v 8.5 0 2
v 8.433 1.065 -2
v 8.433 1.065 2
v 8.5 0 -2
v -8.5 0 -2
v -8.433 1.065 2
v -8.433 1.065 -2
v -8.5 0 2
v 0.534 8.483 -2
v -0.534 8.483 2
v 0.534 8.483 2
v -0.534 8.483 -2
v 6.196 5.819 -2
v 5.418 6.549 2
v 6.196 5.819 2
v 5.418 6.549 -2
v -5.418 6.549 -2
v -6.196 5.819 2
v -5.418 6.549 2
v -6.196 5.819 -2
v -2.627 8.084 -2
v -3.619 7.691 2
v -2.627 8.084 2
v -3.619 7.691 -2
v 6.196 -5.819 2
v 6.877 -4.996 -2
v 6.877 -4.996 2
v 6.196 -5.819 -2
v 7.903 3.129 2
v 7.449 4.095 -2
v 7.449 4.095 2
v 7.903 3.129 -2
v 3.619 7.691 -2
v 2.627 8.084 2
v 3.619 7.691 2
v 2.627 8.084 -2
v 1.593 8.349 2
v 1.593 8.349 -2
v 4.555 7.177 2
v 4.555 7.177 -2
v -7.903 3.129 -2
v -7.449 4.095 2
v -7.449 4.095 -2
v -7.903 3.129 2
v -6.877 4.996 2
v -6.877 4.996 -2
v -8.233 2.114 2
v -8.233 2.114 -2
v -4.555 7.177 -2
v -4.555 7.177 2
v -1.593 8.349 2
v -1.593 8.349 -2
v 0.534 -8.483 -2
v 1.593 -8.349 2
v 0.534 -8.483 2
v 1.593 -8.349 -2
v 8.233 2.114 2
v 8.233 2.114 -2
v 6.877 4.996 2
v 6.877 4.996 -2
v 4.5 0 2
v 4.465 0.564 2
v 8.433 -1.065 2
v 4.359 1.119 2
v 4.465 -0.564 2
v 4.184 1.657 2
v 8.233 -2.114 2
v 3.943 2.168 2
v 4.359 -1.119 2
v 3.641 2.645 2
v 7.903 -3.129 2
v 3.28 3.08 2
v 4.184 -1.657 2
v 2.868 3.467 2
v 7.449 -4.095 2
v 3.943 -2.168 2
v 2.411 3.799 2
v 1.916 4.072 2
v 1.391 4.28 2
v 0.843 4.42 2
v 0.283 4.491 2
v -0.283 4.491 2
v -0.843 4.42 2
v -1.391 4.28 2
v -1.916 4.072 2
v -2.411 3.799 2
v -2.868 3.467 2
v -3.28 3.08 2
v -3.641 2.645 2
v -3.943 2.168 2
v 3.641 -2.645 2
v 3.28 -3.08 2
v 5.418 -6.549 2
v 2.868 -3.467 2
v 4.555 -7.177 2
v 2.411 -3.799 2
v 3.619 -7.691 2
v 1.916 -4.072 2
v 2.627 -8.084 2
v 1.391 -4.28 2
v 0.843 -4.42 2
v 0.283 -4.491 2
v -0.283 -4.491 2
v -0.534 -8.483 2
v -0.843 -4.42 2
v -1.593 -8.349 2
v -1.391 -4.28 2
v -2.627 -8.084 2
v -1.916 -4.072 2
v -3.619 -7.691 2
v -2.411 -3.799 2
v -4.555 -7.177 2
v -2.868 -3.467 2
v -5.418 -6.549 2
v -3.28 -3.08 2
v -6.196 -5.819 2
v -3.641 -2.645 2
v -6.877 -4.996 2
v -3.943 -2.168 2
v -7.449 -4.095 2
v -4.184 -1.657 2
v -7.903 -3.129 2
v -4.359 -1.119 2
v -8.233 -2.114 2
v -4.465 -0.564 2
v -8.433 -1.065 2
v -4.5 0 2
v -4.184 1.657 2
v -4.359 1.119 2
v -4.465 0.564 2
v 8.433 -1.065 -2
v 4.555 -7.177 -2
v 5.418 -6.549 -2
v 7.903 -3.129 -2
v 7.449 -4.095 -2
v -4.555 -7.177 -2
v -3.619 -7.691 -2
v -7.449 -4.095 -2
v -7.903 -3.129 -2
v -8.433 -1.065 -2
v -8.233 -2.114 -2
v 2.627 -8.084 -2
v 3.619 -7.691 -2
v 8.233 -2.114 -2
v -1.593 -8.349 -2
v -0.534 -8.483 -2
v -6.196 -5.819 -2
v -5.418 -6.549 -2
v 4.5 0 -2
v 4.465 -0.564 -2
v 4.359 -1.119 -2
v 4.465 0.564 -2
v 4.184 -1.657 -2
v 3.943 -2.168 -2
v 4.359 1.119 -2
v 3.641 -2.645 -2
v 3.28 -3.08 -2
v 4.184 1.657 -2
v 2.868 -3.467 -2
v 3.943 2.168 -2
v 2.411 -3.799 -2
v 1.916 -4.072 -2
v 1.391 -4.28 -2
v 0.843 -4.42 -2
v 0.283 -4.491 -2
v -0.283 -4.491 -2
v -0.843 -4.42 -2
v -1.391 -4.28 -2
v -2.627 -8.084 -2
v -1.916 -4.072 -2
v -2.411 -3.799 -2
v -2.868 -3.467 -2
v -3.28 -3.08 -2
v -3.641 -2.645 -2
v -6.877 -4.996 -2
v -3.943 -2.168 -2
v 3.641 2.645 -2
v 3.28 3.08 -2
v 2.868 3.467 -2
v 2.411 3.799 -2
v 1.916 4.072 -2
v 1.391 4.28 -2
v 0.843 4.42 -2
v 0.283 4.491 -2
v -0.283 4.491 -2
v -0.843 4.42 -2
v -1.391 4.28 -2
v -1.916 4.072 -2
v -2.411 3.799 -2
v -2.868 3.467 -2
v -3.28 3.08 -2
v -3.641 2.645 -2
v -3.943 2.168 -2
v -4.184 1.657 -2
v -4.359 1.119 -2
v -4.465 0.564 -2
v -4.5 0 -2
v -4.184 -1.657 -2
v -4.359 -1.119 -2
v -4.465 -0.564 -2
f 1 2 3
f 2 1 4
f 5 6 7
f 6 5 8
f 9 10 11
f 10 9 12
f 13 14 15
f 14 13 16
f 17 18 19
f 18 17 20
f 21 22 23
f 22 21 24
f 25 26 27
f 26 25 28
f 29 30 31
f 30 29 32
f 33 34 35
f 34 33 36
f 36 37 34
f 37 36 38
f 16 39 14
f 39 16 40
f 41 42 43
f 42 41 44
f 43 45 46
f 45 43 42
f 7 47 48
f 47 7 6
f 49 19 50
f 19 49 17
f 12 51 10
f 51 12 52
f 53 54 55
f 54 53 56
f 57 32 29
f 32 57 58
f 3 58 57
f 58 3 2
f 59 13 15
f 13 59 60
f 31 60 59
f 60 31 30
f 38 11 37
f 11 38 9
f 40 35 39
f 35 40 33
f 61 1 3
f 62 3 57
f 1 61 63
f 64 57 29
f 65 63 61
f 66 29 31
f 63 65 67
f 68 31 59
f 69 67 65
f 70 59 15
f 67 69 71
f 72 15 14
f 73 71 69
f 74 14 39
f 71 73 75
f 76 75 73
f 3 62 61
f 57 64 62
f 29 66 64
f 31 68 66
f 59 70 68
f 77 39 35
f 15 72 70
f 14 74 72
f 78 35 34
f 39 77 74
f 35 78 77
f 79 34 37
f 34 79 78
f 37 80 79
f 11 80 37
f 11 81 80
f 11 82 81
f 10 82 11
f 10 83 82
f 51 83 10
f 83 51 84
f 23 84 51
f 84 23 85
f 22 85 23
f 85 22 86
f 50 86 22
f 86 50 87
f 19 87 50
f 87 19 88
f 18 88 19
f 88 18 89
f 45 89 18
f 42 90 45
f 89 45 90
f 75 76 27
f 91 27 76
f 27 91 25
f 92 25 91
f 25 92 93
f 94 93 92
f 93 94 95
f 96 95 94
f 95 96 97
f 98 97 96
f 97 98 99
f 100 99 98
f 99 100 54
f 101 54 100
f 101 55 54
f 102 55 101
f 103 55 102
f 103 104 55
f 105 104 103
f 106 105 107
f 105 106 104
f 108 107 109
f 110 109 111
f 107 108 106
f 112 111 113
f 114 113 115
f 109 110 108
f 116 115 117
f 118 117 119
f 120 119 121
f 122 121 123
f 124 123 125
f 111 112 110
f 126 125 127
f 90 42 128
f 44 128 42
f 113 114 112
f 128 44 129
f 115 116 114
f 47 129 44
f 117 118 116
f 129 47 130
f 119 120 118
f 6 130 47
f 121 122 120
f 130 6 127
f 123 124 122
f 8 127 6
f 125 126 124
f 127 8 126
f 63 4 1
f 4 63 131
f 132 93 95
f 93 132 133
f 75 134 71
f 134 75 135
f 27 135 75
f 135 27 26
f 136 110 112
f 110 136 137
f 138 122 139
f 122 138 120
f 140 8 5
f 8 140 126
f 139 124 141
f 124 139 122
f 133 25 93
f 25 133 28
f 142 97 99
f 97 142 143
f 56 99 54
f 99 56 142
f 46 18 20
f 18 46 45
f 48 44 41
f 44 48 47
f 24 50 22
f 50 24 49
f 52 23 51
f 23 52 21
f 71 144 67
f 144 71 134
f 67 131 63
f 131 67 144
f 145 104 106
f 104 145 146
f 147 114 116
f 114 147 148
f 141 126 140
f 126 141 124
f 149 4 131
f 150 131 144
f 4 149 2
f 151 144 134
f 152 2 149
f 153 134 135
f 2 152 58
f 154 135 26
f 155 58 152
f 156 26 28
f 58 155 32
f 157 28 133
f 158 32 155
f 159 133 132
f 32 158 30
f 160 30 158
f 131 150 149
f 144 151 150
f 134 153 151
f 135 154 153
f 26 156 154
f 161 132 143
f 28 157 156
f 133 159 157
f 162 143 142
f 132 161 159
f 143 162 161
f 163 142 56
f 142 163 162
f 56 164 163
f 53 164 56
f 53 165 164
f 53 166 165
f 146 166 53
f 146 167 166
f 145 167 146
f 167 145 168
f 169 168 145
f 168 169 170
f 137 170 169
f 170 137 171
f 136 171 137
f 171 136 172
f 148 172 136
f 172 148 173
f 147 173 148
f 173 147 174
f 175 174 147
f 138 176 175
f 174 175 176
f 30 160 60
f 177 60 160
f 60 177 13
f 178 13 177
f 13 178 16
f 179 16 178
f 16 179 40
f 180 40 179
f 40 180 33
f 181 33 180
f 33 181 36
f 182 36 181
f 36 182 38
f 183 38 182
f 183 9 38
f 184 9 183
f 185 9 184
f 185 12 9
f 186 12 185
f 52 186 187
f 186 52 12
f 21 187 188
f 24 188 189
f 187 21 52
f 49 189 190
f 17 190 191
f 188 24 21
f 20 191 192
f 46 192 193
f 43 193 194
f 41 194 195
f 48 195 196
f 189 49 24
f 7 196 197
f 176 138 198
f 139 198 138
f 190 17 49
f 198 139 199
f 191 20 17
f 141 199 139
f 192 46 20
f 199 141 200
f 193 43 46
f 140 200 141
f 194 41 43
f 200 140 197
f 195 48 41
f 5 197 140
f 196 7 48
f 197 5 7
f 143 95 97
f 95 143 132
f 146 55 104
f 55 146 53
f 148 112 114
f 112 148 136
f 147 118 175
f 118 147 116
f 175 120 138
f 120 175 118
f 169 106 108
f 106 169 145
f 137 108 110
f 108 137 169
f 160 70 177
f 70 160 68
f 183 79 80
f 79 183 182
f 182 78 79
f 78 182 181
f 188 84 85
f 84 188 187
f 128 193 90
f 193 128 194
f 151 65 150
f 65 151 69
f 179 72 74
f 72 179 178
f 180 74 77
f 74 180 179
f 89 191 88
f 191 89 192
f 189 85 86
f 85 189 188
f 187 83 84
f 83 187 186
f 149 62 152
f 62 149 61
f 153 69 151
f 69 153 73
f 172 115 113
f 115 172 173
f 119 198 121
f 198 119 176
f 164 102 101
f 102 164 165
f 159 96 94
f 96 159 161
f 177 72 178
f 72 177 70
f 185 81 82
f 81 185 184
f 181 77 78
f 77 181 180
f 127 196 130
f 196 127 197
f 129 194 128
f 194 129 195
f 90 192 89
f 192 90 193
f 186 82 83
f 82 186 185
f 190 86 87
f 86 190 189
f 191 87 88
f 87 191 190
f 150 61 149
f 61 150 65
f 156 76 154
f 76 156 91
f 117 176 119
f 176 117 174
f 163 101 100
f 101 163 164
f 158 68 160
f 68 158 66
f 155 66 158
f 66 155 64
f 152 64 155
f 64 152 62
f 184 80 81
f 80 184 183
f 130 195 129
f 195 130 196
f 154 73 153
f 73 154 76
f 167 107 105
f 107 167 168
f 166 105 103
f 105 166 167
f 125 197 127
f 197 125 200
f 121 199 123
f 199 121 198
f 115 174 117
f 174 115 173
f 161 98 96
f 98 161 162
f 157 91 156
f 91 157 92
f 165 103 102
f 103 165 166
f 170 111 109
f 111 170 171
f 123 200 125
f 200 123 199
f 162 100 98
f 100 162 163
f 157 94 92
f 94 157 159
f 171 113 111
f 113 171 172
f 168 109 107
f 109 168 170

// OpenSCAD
$fn = 50;


difference() {
	union() {
		translate(v = [0, 0, -2.0000000000]) {
			cylinder(h = 4, r = 8.5000000000);
		}
	}
	union() {
		translate(v = [0, 0, -100.0000000000]) {
			cylinder(h = 200, r = 4.5000000000);
		}
	}
}
